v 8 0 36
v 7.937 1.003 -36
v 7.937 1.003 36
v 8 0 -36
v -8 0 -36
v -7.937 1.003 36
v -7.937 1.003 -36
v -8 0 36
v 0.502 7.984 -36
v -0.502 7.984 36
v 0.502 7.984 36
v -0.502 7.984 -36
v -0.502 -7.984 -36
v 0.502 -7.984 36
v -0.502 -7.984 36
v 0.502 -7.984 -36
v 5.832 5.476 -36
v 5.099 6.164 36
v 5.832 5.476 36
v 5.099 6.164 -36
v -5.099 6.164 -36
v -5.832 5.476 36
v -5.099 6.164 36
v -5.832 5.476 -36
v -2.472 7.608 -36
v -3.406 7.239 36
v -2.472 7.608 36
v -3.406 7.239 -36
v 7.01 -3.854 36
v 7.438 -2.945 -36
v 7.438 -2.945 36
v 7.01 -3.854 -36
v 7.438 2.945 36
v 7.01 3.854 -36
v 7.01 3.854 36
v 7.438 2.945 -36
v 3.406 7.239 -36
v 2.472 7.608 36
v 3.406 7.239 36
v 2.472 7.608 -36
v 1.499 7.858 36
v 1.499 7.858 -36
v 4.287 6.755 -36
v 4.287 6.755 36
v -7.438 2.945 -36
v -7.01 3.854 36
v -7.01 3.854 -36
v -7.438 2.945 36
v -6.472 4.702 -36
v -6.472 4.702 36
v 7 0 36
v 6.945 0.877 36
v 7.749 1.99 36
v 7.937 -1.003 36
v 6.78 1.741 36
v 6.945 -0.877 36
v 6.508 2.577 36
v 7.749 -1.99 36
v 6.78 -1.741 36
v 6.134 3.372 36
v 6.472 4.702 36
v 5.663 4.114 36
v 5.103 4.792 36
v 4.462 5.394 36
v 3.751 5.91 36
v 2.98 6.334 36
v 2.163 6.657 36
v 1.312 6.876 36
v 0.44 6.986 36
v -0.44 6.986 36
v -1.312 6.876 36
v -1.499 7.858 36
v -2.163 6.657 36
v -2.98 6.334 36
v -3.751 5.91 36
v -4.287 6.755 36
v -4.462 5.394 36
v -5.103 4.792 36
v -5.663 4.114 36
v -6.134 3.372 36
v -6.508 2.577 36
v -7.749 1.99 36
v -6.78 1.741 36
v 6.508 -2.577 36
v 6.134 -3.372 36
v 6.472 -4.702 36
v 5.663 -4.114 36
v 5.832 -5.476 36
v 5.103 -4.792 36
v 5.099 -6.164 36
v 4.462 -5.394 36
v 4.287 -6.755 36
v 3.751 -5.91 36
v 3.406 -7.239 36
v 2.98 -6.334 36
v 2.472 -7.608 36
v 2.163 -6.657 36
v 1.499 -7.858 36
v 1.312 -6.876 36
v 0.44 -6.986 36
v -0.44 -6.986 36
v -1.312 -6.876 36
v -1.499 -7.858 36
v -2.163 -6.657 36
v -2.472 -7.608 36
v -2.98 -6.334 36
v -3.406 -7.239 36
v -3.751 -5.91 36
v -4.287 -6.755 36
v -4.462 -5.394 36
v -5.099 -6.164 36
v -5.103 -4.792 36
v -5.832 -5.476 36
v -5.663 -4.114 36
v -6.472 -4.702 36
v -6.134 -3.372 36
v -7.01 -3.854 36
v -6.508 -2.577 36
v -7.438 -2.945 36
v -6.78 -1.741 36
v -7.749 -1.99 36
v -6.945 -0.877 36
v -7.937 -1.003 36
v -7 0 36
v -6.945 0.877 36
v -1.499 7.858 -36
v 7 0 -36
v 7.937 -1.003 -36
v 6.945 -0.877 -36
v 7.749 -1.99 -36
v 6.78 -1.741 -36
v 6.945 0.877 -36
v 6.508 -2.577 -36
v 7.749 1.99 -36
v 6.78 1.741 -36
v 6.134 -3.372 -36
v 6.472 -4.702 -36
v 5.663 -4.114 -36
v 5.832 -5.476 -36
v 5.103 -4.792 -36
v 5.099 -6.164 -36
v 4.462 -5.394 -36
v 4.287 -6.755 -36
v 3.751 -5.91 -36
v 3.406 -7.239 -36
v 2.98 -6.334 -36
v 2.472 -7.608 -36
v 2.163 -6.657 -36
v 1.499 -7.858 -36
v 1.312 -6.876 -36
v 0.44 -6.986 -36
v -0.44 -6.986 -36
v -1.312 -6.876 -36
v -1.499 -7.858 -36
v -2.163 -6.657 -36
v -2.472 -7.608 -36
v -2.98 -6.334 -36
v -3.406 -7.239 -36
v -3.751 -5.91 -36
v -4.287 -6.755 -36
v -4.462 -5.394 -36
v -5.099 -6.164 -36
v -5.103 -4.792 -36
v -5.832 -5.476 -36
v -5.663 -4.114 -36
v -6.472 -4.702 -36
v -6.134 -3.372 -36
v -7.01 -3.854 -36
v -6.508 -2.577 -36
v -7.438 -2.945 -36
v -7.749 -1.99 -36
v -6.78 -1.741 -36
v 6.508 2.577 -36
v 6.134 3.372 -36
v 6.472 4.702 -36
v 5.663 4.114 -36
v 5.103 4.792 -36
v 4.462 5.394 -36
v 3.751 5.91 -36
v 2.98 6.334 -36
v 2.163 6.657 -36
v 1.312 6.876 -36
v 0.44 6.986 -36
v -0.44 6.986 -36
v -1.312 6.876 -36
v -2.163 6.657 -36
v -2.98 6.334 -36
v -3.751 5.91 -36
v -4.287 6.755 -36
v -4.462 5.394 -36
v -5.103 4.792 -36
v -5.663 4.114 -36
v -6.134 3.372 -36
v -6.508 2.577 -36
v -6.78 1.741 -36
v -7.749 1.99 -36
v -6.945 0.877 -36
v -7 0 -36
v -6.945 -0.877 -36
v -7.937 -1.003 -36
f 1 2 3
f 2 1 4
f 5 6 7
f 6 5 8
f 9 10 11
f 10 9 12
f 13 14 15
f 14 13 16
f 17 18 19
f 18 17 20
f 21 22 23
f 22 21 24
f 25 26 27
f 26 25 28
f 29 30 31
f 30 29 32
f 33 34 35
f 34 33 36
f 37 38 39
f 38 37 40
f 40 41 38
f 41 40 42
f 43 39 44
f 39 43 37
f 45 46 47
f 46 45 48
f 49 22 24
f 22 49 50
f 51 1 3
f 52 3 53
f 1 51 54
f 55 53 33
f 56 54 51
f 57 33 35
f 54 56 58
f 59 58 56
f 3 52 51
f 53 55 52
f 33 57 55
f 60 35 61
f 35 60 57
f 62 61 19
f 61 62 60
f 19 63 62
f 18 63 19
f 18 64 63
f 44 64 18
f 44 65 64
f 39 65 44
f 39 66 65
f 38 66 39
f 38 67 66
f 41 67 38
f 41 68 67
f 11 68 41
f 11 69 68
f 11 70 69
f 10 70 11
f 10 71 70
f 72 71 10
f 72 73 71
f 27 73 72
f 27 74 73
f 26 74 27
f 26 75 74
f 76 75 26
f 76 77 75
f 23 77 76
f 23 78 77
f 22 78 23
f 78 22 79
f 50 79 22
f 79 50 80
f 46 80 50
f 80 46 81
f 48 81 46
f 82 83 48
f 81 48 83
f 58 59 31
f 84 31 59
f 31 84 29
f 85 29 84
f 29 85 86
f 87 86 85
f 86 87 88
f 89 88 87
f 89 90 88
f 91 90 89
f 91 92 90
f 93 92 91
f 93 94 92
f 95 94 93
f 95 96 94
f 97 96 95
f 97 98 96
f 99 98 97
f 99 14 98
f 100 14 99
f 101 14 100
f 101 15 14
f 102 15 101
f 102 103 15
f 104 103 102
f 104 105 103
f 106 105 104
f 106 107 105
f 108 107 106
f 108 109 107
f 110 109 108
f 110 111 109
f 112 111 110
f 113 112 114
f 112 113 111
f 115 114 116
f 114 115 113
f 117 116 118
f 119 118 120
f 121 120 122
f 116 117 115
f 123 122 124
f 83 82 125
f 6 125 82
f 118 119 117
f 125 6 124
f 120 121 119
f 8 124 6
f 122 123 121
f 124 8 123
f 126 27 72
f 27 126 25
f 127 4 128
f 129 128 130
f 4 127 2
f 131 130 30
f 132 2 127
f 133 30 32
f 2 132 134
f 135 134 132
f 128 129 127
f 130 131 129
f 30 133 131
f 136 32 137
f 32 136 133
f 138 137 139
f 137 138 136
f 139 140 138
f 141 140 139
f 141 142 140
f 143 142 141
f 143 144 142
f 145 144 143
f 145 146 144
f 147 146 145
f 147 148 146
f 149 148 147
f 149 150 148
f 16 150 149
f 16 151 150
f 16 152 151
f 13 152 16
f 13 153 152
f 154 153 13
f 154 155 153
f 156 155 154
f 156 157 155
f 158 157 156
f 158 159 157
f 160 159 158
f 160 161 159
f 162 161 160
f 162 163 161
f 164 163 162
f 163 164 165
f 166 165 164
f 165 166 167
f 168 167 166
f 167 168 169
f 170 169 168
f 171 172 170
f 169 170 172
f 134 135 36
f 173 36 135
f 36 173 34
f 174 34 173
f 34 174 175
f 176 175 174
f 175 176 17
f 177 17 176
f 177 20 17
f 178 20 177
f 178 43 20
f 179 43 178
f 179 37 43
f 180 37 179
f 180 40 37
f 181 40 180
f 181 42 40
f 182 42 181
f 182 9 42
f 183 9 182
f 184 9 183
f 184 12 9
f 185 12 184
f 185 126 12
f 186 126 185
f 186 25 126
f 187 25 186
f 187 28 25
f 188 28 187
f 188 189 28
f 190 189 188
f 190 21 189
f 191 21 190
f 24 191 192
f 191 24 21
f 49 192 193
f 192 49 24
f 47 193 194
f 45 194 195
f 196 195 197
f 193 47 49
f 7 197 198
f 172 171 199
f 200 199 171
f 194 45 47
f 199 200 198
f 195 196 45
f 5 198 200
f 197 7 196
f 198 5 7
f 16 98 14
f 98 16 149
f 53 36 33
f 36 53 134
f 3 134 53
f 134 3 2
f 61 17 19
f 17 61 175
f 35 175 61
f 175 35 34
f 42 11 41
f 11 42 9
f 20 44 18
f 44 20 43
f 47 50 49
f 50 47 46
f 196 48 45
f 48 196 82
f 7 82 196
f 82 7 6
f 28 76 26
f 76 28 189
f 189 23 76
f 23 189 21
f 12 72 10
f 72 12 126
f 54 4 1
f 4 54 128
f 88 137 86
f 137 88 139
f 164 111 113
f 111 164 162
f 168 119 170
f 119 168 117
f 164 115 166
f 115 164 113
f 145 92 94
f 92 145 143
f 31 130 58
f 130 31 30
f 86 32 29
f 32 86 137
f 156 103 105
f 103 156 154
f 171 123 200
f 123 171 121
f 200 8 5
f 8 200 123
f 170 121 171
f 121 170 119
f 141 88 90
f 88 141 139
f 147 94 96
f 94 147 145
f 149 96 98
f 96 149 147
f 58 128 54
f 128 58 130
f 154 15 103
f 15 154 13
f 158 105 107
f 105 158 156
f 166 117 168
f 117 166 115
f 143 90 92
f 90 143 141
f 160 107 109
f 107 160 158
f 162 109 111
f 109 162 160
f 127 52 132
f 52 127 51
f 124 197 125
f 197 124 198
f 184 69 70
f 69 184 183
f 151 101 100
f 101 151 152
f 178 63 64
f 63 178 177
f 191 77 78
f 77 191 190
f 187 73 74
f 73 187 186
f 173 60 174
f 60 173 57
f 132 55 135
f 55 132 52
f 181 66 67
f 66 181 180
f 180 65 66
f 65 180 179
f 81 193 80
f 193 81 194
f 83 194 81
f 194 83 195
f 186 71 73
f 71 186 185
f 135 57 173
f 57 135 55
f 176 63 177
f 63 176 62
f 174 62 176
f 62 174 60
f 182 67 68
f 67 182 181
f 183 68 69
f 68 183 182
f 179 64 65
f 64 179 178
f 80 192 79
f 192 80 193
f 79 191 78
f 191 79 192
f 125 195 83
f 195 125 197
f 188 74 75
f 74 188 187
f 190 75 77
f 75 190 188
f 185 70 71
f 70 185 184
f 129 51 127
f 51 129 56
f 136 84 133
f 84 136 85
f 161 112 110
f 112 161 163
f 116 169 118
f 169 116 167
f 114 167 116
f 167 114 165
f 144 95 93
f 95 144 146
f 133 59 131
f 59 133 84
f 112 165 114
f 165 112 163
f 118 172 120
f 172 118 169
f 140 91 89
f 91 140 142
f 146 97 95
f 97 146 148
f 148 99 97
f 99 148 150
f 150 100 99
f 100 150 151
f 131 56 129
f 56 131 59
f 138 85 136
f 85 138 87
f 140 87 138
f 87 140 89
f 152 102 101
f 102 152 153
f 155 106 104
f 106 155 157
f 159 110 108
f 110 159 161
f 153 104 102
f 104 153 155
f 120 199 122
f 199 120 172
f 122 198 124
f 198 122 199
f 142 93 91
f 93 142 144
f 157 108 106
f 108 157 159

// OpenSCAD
$fn = 50;


difference() {
	union() {
		translate(v = [0, 0, -36.0000000000]) {
			cylinder(h = 72, r = 8.0000000000);
		}
	}
	union() {
		translate(v = [0, 0, -100.0000000000]) {
			cylinder(h = 200, r = 7);
		}
	}
}
